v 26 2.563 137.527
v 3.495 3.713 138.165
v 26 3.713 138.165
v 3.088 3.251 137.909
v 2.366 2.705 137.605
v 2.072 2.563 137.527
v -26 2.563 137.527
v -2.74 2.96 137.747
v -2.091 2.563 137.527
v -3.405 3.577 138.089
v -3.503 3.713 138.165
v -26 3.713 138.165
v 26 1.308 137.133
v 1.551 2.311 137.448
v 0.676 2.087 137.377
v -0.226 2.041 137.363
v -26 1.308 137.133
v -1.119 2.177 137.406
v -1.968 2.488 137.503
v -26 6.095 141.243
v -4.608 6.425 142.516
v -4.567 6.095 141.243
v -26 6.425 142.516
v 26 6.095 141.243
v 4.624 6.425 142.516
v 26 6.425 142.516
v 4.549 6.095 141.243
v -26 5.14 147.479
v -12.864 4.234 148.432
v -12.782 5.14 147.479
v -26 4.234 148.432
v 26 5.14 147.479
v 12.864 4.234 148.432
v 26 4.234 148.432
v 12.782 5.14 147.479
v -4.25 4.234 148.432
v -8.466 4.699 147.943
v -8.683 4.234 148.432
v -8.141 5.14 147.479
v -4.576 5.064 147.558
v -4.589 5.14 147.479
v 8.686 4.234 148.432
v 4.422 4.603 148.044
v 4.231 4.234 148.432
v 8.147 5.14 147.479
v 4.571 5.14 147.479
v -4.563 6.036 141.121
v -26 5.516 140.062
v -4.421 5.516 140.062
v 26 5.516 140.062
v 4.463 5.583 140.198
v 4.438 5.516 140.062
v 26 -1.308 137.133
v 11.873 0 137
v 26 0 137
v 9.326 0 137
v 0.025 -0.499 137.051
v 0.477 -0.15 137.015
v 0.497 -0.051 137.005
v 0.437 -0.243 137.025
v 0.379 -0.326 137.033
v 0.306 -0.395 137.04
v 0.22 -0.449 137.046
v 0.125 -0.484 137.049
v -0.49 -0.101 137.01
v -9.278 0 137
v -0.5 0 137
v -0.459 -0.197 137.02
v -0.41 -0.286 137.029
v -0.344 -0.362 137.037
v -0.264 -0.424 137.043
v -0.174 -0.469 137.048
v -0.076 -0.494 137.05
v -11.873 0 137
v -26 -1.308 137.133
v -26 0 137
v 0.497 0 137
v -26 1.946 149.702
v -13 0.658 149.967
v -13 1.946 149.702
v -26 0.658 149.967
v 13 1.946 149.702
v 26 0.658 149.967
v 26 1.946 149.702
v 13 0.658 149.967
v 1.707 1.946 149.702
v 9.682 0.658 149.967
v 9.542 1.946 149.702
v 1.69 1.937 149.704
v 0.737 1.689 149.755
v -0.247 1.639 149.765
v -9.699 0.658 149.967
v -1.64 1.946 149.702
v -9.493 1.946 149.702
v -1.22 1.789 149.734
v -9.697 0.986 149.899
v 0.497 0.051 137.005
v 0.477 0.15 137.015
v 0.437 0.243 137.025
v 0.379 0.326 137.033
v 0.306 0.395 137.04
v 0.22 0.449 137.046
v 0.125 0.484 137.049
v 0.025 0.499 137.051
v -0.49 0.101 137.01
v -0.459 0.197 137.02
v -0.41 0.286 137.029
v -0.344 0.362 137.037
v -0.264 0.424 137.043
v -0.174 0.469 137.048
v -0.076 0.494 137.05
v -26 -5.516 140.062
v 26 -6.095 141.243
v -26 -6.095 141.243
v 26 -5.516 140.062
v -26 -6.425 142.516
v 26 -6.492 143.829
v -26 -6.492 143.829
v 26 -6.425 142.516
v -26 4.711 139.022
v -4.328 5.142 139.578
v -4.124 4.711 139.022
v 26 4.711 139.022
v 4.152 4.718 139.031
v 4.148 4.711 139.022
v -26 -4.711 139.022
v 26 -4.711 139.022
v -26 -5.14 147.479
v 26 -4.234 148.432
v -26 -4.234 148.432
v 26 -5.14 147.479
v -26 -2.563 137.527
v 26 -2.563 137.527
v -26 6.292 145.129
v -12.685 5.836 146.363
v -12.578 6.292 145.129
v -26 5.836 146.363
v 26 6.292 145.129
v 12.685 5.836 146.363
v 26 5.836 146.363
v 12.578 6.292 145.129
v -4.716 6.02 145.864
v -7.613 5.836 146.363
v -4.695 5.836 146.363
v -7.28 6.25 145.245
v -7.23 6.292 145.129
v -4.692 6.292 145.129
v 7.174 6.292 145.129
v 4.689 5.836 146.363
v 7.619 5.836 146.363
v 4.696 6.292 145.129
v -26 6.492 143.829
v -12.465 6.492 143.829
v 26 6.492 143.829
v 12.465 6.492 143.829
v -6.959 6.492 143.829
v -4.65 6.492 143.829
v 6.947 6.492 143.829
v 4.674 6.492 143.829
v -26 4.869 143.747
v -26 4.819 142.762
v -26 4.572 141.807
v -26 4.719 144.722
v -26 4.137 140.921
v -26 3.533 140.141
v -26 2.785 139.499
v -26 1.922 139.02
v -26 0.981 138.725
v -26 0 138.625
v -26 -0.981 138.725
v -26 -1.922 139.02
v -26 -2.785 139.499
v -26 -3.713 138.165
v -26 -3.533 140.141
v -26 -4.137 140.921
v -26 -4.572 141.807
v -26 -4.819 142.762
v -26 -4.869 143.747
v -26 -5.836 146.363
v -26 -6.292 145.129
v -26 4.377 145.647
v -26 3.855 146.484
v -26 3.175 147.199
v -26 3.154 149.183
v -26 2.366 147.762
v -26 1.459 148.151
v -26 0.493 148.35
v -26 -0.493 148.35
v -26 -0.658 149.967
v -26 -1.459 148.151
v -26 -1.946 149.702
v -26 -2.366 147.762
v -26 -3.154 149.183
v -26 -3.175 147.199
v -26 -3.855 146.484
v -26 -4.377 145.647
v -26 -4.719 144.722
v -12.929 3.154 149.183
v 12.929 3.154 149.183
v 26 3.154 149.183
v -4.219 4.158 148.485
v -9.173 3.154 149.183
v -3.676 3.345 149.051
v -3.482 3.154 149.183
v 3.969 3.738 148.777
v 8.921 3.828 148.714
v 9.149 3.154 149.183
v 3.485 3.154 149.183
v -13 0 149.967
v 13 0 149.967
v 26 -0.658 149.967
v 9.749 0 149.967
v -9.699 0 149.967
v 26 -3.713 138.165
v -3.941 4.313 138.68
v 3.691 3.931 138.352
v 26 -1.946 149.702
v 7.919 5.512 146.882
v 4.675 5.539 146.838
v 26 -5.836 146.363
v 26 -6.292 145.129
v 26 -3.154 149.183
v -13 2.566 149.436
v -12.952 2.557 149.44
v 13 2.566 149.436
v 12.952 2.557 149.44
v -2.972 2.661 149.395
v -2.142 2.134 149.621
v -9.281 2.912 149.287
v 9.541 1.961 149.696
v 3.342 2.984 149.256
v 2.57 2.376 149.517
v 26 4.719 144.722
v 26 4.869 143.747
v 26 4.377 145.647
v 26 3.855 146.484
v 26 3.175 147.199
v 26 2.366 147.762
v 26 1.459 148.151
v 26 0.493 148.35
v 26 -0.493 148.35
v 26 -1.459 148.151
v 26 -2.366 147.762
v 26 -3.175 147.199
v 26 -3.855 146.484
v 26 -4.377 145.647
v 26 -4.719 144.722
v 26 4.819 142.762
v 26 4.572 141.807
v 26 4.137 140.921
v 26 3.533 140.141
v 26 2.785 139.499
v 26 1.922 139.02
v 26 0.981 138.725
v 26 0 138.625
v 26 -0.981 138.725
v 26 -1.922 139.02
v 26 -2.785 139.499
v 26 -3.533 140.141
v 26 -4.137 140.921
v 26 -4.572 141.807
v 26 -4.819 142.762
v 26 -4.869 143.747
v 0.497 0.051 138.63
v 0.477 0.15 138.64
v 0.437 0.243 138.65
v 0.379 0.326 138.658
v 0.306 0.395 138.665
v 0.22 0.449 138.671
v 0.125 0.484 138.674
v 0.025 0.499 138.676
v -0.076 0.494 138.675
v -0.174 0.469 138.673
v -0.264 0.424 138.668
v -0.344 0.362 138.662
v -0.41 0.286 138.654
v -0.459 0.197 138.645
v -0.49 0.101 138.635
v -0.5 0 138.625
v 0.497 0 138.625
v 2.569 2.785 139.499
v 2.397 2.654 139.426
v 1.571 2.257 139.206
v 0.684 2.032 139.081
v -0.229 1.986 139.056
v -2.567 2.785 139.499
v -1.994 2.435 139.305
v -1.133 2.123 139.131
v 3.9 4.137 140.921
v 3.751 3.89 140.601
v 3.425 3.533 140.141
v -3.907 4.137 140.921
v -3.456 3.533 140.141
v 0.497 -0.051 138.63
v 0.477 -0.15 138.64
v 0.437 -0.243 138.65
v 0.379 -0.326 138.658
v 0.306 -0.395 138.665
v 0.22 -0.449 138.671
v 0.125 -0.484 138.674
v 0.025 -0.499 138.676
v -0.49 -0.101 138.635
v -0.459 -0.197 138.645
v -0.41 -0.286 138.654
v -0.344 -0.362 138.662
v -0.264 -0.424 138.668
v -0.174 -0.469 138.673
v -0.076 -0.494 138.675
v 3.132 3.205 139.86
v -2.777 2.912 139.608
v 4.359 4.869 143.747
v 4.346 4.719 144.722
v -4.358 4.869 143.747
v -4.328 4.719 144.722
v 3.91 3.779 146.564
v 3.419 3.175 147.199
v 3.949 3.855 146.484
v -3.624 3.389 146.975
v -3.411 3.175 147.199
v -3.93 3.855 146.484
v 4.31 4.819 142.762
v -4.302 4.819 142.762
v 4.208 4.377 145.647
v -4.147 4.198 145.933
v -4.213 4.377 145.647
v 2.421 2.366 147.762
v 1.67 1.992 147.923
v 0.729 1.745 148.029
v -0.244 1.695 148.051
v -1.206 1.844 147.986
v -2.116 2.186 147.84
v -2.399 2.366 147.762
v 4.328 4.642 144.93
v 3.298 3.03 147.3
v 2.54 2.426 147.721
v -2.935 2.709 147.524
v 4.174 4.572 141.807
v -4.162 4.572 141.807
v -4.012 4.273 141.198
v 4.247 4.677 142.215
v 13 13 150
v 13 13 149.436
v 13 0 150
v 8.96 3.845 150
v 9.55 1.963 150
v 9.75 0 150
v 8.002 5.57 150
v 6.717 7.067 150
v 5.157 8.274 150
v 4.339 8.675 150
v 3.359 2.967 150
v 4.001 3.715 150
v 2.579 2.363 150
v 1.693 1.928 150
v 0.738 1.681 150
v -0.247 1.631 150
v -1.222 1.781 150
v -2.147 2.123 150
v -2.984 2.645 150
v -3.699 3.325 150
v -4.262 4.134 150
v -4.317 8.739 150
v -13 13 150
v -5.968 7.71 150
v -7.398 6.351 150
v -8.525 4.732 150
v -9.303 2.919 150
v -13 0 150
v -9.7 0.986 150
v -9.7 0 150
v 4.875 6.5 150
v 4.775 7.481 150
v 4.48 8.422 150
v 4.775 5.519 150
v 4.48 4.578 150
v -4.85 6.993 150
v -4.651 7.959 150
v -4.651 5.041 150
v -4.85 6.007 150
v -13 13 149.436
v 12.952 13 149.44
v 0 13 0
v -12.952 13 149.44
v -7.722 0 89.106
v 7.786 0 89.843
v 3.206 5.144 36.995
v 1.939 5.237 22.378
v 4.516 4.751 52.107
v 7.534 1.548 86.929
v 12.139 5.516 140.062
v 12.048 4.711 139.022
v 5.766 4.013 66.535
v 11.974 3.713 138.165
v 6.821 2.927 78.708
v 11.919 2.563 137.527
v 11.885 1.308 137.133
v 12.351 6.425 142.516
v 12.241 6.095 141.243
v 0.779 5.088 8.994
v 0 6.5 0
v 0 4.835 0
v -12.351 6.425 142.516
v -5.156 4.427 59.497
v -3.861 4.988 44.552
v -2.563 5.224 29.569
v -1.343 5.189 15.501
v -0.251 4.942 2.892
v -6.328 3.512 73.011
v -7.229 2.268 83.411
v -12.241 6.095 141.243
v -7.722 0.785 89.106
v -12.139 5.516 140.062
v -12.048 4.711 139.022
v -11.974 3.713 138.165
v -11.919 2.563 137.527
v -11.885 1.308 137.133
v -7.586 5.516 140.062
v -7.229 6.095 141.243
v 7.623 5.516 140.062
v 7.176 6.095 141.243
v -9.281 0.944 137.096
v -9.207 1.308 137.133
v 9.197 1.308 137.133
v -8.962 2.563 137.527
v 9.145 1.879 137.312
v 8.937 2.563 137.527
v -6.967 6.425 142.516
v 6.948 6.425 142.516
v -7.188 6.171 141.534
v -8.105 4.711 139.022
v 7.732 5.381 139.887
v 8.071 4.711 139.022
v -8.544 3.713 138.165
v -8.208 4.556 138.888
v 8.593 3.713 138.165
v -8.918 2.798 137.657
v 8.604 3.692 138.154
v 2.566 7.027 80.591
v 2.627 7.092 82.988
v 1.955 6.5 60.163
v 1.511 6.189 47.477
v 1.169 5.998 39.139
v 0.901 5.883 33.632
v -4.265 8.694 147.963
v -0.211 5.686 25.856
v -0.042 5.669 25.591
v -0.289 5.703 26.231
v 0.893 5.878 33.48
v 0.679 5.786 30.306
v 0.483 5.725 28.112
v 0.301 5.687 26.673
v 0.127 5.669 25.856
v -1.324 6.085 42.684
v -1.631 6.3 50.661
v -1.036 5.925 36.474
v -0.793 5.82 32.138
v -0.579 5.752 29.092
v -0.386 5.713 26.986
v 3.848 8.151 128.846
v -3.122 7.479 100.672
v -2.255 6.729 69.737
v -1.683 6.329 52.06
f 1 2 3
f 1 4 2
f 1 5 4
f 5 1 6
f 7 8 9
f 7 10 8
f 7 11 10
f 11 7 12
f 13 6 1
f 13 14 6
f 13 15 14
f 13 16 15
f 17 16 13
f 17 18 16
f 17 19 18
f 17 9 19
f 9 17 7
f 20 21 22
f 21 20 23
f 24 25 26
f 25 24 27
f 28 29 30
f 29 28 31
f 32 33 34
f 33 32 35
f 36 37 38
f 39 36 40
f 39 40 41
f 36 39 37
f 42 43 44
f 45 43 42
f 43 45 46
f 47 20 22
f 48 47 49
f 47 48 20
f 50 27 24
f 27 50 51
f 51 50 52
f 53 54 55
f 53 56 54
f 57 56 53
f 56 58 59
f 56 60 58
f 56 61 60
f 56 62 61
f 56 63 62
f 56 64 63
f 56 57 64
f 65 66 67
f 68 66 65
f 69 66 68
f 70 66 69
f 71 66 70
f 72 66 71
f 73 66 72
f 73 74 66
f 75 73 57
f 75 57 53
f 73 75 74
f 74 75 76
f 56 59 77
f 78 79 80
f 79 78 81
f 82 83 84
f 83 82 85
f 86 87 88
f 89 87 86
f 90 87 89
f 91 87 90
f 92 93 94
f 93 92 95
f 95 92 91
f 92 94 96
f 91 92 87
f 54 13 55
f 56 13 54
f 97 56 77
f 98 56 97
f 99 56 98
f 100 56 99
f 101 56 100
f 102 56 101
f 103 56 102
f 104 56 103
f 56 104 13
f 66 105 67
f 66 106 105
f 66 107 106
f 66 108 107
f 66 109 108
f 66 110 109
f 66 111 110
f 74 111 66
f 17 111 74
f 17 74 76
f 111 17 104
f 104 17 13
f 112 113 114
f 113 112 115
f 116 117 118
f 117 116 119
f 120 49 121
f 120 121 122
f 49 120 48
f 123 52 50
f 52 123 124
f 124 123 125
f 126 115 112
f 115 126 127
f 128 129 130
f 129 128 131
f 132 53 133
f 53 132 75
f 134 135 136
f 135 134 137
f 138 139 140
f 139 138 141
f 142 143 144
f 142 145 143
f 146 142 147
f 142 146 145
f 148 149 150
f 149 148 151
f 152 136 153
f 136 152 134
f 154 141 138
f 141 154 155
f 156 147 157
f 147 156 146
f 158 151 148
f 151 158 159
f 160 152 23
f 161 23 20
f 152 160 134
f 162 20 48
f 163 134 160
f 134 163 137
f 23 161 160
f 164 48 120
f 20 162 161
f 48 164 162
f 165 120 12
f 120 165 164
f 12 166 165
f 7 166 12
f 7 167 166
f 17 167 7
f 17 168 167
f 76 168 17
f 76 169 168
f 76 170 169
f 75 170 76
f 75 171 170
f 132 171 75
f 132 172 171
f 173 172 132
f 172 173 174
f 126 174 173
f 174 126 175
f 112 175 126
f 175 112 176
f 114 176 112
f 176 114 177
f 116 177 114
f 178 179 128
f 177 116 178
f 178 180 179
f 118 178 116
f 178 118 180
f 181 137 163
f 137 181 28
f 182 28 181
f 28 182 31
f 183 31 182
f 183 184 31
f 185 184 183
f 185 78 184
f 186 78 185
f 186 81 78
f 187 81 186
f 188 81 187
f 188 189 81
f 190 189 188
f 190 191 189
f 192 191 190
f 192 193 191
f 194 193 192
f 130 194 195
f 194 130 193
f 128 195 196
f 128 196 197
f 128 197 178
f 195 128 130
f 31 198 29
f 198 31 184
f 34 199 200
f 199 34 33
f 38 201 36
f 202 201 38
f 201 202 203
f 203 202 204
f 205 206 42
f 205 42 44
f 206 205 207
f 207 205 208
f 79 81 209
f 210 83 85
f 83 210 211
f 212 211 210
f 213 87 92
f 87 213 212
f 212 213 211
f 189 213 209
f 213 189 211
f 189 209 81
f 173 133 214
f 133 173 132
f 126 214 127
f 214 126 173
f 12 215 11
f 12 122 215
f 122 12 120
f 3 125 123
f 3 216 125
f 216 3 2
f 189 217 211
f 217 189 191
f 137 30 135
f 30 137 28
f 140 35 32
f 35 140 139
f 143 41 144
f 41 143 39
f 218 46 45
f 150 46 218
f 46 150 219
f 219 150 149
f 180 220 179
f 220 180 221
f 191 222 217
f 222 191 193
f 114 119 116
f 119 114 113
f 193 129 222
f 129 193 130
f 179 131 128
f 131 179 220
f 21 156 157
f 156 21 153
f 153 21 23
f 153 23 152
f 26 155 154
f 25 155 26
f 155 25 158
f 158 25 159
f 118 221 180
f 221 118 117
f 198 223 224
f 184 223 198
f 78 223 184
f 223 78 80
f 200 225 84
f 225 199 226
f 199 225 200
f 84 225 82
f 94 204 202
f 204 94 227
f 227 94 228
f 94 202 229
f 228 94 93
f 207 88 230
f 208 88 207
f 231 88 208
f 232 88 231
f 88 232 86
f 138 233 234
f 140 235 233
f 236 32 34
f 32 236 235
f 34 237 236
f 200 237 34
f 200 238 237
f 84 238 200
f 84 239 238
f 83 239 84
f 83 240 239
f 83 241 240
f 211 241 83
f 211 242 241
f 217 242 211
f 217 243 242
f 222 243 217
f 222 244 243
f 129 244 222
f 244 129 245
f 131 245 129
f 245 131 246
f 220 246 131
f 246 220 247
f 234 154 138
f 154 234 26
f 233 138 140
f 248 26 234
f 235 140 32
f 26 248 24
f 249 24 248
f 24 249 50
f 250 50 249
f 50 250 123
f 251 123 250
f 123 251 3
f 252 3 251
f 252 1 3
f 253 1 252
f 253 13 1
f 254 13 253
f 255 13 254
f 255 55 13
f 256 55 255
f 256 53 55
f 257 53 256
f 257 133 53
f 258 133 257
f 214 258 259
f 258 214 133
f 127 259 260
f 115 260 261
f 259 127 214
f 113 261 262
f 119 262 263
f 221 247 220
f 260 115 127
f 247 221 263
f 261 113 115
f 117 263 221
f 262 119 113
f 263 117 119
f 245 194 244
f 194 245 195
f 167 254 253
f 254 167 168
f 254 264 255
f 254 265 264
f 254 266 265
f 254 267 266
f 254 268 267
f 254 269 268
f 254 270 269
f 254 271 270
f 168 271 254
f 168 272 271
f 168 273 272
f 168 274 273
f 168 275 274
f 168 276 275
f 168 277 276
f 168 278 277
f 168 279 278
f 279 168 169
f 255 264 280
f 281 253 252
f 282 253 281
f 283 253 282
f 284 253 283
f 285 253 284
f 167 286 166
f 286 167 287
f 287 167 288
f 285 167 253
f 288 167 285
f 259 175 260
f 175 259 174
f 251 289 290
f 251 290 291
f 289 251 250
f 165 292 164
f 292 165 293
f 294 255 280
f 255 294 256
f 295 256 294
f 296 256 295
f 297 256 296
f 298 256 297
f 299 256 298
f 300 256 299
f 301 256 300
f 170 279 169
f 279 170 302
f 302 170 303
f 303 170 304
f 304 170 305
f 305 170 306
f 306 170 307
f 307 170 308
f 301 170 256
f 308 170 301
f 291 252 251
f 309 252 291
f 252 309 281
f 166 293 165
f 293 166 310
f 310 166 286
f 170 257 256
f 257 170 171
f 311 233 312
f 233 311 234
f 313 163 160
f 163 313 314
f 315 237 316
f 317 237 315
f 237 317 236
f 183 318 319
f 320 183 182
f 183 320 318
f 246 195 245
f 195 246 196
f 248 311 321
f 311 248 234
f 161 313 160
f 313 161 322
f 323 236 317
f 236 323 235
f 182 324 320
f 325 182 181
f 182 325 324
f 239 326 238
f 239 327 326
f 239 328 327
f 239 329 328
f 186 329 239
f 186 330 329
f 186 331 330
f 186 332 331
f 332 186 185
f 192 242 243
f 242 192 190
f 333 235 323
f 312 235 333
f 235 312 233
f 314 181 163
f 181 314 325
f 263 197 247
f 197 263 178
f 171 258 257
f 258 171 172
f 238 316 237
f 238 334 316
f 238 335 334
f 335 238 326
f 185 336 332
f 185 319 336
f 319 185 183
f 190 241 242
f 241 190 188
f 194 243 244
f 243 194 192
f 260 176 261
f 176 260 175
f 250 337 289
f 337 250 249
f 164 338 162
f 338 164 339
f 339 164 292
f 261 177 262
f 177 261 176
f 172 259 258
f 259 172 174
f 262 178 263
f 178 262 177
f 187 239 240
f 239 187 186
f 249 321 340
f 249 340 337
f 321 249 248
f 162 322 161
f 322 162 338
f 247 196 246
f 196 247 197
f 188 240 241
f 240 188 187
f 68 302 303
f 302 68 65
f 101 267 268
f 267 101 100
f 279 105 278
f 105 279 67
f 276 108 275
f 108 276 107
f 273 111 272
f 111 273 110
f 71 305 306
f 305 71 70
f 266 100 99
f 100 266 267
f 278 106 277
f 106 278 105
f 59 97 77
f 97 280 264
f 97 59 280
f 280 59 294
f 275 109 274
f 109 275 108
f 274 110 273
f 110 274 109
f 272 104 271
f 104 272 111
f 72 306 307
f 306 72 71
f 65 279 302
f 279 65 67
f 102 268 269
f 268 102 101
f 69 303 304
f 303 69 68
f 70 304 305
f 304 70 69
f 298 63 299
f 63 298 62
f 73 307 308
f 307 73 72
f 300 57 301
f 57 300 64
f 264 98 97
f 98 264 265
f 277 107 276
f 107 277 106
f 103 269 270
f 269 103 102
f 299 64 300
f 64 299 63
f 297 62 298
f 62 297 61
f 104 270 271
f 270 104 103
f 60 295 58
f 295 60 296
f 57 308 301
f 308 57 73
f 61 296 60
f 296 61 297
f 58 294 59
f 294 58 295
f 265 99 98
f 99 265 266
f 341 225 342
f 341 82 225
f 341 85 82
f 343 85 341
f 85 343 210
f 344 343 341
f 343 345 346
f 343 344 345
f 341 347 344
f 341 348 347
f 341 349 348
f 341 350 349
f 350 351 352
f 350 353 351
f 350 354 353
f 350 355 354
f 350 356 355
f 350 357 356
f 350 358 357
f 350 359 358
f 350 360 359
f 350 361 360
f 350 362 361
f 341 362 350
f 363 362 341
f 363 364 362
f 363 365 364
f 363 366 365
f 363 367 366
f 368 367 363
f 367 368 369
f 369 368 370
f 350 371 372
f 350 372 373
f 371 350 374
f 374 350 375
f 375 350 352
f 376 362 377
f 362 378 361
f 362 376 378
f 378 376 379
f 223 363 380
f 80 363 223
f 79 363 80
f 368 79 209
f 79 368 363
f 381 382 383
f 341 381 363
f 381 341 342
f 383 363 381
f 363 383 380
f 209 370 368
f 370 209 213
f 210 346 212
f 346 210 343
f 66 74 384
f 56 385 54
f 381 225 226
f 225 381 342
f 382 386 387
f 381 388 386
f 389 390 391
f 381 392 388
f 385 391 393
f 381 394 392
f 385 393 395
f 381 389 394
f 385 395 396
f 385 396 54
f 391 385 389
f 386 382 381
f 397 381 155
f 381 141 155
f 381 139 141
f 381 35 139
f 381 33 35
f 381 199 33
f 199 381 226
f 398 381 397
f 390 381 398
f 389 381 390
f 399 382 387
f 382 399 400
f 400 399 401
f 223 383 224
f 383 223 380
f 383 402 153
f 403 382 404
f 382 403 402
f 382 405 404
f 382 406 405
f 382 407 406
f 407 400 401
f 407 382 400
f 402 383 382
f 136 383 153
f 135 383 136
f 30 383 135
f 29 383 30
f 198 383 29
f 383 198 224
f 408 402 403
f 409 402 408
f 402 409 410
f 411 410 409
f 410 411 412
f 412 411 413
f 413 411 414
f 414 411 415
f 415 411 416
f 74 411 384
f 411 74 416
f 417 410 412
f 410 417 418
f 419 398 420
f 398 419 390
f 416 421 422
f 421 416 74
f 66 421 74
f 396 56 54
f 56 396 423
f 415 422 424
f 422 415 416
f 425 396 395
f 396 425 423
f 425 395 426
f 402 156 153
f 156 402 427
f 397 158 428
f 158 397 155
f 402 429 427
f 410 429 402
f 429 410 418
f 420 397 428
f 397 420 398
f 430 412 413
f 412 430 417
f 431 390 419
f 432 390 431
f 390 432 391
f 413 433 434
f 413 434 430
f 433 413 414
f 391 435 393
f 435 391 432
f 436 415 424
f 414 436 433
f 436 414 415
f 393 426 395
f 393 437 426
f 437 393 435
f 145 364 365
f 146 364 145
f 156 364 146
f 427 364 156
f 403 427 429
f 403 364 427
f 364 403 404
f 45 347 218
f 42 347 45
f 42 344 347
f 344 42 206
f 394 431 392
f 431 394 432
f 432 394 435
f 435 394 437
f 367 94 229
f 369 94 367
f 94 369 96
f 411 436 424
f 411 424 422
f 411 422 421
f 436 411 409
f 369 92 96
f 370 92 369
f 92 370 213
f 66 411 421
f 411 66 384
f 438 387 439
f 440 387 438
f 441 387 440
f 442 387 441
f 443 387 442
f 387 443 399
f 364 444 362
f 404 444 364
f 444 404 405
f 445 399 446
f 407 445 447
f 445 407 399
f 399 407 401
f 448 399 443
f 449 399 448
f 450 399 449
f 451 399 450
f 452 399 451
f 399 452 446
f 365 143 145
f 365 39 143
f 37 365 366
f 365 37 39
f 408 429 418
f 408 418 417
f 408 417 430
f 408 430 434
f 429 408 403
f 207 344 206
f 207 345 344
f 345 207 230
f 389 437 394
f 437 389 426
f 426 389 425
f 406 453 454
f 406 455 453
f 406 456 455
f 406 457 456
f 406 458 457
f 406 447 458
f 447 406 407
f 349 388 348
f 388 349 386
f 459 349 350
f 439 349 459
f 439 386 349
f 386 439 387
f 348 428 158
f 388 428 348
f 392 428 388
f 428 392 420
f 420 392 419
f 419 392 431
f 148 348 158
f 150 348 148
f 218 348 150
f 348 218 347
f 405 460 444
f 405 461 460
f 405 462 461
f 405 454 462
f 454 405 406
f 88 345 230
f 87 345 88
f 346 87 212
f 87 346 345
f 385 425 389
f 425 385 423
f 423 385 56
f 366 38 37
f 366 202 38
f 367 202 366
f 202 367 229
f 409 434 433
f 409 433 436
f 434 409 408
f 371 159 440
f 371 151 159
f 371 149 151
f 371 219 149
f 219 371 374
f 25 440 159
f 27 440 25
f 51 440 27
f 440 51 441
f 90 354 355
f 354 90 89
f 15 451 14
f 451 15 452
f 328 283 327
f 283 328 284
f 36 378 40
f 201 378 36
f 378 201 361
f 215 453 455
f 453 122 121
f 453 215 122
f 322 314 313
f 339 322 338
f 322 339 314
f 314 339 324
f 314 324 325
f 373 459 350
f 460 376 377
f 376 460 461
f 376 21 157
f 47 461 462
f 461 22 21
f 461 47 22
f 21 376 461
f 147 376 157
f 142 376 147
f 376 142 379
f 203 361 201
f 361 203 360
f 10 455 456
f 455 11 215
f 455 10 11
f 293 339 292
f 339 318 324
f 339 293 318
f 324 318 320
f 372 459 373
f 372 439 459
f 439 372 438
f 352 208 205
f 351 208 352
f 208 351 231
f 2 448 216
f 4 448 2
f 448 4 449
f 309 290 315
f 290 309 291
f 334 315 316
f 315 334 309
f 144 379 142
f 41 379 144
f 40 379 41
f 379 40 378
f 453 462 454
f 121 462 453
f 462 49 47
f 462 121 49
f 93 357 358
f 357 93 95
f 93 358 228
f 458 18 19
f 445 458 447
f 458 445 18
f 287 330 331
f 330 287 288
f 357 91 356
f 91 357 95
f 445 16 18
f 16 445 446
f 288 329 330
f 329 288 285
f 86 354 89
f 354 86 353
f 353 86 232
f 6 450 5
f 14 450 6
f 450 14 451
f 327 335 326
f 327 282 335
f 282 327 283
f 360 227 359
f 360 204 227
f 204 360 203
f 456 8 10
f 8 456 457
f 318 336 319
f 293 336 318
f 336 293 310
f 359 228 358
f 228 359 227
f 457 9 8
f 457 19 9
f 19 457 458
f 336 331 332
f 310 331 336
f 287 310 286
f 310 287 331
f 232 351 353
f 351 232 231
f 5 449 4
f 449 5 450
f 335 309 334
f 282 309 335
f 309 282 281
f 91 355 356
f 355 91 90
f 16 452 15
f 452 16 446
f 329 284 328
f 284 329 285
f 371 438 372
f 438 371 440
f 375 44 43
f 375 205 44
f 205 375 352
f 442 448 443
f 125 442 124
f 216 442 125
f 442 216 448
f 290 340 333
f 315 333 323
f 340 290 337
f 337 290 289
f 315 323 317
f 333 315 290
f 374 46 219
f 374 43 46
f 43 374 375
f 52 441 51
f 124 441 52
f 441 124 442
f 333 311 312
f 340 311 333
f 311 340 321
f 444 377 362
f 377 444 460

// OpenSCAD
translate([-26,0,143.5])
color("blue",1.0)
rotate([0,90,0])
difference(){
cylinder(h=52,r1=6.5,r2=6.5,center=false,$fn=31);

translate([0,0,-13])
cylinder(h=78,r1=4.875,r2=4.875,center=false,$fn=31);

translate([0,0,26])
rotate([0,90,0])
cylinder(h=13,r1=0.5,r2=0.5,center=false,$fn=31);

}
difference(){
translate([-13,0,0])
color("green",1.0)
cube([26, 13, 150],center=false);

rotate([0,4.953257477842062,0])
translate([0,-1,0])
color("red",1.0)
cube([13, 39, 150],center=false);

rotate([0,-4.953257477842062,0])
translate([-13,-1,0])
color("yellow",1.0)
cube([13, 39, 150],center=false);

color("green",1.0)
translate([-26,0,143.5])
rotate([0,90,0])
cylinder(h=52,r1=6.5,r2=6.5,center=false,$fn=31);

translate([0,0,150])
rotate([180,0,0])
cylinder(h=298.7,r1=9.75,r2=0,center=false,$fn=31);

}
translate([0,6.5,150])
rotate([180,0,0])
cylinder(h=150,r1=4.875,r2=0,center=false,$fn=31);
